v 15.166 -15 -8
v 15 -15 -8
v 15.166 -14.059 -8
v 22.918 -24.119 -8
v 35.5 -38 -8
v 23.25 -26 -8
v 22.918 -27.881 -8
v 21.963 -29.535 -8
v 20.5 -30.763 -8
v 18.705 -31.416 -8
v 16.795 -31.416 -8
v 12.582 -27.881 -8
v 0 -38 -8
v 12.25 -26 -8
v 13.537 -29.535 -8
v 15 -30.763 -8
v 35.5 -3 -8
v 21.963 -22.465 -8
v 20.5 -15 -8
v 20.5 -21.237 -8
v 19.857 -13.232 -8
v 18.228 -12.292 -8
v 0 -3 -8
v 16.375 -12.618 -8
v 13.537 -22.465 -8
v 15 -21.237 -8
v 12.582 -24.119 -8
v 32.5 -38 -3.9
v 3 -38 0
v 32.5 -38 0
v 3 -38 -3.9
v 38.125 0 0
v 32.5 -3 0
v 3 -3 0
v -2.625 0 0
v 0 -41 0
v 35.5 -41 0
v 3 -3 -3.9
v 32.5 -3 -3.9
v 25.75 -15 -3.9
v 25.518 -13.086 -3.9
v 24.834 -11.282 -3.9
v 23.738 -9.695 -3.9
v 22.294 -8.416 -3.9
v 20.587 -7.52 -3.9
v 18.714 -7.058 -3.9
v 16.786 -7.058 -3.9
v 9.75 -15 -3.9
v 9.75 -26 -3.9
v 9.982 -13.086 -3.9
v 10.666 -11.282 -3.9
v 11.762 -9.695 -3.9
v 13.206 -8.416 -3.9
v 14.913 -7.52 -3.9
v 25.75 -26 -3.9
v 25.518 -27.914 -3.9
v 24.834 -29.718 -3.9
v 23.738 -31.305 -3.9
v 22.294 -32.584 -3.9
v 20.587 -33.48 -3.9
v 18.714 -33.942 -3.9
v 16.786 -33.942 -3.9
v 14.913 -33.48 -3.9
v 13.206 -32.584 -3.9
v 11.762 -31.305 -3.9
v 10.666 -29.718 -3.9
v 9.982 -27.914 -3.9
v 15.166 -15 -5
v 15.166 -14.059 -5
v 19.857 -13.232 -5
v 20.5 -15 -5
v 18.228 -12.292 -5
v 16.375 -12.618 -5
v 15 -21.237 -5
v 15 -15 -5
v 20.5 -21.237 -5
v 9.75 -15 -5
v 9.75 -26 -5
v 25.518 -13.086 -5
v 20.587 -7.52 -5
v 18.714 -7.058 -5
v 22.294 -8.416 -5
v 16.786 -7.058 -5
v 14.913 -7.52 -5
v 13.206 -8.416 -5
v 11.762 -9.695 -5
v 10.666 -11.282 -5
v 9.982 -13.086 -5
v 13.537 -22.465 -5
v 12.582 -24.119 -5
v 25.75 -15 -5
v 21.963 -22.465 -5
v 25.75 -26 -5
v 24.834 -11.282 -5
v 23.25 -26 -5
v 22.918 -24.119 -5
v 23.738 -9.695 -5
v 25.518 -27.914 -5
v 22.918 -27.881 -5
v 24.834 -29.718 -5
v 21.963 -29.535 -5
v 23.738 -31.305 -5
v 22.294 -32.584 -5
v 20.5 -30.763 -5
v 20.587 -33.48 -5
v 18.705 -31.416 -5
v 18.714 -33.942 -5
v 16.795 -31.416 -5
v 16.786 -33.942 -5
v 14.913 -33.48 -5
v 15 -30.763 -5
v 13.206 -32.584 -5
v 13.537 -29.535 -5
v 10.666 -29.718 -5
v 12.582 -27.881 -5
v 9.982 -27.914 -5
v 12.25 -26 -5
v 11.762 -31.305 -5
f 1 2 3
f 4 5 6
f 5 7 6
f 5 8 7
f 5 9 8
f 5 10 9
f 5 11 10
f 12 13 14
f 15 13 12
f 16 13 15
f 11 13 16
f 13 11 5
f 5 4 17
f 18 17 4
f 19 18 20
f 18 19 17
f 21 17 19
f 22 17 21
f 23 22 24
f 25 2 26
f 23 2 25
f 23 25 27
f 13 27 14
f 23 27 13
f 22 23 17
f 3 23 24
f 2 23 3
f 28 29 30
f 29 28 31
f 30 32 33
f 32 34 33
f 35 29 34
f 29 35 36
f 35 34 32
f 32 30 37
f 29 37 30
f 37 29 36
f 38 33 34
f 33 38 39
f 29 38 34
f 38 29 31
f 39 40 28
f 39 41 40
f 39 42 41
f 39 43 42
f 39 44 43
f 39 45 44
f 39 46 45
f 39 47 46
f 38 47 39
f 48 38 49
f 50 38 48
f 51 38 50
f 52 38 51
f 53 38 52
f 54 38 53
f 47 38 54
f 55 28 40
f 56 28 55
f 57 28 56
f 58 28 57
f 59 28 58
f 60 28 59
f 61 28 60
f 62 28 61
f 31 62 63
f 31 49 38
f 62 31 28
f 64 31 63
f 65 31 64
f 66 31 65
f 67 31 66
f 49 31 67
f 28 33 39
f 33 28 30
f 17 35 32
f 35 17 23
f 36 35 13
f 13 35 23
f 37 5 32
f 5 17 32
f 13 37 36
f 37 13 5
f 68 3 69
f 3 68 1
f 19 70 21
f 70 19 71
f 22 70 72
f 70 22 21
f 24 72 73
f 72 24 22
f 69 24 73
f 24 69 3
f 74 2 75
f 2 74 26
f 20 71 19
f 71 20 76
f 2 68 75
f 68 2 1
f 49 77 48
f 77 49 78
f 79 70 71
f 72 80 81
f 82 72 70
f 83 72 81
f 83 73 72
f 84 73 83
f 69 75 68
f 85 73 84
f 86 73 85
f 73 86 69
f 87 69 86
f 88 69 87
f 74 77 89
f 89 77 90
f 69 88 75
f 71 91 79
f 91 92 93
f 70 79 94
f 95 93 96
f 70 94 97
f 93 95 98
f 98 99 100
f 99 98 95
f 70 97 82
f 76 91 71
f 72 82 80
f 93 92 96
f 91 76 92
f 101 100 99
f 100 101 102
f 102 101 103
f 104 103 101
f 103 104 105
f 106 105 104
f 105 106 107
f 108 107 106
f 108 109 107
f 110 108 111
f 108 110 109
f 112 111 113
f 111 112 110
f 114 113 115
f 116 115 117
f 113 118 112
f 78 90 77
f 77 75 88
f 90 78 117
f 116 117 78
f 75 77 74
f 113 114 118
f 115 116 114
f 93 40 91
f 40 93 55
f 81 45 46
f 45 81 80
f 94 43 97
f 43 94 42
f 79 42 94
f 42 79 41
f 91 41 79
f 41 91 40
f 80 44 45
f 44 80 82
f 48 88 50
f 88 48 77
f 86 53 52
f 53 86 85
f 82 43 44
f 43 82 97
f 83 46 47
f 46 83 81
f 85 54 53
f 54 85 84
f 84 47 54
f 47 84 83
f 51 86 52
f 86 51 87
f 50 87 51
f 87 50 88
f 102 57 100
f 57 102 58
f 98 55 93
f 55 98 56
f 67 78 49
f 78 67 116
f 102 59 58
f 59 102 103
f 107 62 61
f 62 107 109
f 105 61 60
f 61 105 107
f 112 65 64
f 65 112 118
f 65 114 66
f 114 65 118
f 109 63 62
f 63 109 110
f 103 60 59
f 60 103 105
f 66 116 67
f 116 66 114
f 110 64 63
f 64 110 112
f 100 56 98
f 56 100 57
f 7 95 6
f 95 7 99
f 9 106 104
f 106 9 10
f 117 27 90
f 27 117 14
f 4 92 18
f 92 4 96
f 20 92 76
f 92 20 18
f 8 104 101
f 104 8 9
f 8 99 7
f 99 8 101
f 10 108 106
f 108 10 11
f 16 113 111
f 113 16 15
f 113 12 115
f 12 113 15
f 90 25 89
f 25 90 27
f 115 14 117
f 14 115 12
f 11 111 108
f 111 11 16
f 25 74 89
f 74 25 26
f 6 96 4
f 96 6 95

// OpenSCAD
// A replacement plate for Manfrotto 501PL quick release compatible heads
// by Nirav Patel <http://eclecti.cc>
//
// Altered to suit Velbon Sherpa 250 with PH-157Q
// JSR 2016 

// Available under the CC BY license

channel = 5.5;              // Width of the channel in the middle
height = 8.0;               // Height of the plate (>=11 mm recommended)
length = 19.0 * 2.0 + 3.0; // Length of the plate (90 mm is the stock one)
wall = 3;                   // Thickness of walls
width = 35.5;              // Width of the main cube structure
channel_offset = width / 2.0;

tan_theta = 2.625 / length;

module tapered() polyhedron(points = [[-2.625,0,0], [0,wall,height], [0,0,0], [0,length,0], [0,length - wall,height], [0,length,0]],
        faces = [[0,1,2], [0,4,1], [0,3,4], [0,5,3], [0,2,5], [3,5,4], [2,1,4], [2,4,5]]);
        
module tapered_back() polyhedron(points = [[-2.625 +wall * tan_theta,wall,0], [0,wall,height], [-2.625,0,0], [width + 2.625,0,0], [width,wall,height], [width + 2.625 - wall * tan_theta,wall,0]],
        faces = [[0,1,2], [0,4,1], [0,5,4], [0,3,5], [0,2,3], [3,4,5], [2,1,4], [2,4,3]]);

module tapered_front() polyhedron(points = [[0,length - wall,0], [0,length,0], [0,length - wall,height], [width,length,0], [width,length - wall,height], [width,length - wall,0]],
        faces = [[0,1,2], [0,2,4], [0,4,5], [0,5,1], [1,5,3], [3,5,4], [1,4,2], [1,3,4]]);    

rotate([180,0,0]) // flipped for printability
difference() {
    union() {
        difference() {
            translate([0, wall, 0]) cube([width,length - 2.0 * wall,height]); // the bulk of the box
            translate([wall,wall,0]) cube([width- 2.0 *wall,length - 2 * wall,3.9]);      // removes the base area
            // hollow out what we can to make it use less plastic
            //translate([wall,wall,0]) cube([42/2-2*wall-8,length-2*wall, height-wall]);
            //translate([wall+42/2+8,wall,0]) cube([42/2-2*wall-8,length-2*wall, height-wall]);
        }
        // the tapered side bits
        tapered();
        translate([width,0,0]) mirror([1,0,0]) tapered();
        tapered_back();
        tapered_front();
        // the stop to keep it from falling out the front
        //%translate([0,width,0]) cube([11,4,height]);
        //%translate([0,wall,0]) cube([width - 5.0,wall,height]);
        // the triangle piece that the quickrelease interfaces with
        //polyhedron(points = [[width,width,0], [width,0,0], [width - 5.0,width,0], [width, width, height], [width, 0, height], [width - 5.0, width, height]],
        //    faces = [[0,2,1],[0,1,3],[1,4,3],[2,4,1],[2,5,4],[0,3,5],[0,5,2],[5,3,4]]);
    }

    // the channel for the camera mount screw
    translate([channel_offset,15,0]) cylinder(h=height,r=channel/2);
    translate([channel_offset-channel/2,15,0]) cube([channel,length-30,height]);
    translate([channel_offset-8,15,0]) cube([16,length-30,5]);
    translate([channel_offset,15,0]) cylinder(h=5,r=8);
    translate([channel_offset,length-15,0]) cylinder(h=5,r=8);
    translate([channel_offset,length-15,0]) cylinder(h=height, r=channel);
}
